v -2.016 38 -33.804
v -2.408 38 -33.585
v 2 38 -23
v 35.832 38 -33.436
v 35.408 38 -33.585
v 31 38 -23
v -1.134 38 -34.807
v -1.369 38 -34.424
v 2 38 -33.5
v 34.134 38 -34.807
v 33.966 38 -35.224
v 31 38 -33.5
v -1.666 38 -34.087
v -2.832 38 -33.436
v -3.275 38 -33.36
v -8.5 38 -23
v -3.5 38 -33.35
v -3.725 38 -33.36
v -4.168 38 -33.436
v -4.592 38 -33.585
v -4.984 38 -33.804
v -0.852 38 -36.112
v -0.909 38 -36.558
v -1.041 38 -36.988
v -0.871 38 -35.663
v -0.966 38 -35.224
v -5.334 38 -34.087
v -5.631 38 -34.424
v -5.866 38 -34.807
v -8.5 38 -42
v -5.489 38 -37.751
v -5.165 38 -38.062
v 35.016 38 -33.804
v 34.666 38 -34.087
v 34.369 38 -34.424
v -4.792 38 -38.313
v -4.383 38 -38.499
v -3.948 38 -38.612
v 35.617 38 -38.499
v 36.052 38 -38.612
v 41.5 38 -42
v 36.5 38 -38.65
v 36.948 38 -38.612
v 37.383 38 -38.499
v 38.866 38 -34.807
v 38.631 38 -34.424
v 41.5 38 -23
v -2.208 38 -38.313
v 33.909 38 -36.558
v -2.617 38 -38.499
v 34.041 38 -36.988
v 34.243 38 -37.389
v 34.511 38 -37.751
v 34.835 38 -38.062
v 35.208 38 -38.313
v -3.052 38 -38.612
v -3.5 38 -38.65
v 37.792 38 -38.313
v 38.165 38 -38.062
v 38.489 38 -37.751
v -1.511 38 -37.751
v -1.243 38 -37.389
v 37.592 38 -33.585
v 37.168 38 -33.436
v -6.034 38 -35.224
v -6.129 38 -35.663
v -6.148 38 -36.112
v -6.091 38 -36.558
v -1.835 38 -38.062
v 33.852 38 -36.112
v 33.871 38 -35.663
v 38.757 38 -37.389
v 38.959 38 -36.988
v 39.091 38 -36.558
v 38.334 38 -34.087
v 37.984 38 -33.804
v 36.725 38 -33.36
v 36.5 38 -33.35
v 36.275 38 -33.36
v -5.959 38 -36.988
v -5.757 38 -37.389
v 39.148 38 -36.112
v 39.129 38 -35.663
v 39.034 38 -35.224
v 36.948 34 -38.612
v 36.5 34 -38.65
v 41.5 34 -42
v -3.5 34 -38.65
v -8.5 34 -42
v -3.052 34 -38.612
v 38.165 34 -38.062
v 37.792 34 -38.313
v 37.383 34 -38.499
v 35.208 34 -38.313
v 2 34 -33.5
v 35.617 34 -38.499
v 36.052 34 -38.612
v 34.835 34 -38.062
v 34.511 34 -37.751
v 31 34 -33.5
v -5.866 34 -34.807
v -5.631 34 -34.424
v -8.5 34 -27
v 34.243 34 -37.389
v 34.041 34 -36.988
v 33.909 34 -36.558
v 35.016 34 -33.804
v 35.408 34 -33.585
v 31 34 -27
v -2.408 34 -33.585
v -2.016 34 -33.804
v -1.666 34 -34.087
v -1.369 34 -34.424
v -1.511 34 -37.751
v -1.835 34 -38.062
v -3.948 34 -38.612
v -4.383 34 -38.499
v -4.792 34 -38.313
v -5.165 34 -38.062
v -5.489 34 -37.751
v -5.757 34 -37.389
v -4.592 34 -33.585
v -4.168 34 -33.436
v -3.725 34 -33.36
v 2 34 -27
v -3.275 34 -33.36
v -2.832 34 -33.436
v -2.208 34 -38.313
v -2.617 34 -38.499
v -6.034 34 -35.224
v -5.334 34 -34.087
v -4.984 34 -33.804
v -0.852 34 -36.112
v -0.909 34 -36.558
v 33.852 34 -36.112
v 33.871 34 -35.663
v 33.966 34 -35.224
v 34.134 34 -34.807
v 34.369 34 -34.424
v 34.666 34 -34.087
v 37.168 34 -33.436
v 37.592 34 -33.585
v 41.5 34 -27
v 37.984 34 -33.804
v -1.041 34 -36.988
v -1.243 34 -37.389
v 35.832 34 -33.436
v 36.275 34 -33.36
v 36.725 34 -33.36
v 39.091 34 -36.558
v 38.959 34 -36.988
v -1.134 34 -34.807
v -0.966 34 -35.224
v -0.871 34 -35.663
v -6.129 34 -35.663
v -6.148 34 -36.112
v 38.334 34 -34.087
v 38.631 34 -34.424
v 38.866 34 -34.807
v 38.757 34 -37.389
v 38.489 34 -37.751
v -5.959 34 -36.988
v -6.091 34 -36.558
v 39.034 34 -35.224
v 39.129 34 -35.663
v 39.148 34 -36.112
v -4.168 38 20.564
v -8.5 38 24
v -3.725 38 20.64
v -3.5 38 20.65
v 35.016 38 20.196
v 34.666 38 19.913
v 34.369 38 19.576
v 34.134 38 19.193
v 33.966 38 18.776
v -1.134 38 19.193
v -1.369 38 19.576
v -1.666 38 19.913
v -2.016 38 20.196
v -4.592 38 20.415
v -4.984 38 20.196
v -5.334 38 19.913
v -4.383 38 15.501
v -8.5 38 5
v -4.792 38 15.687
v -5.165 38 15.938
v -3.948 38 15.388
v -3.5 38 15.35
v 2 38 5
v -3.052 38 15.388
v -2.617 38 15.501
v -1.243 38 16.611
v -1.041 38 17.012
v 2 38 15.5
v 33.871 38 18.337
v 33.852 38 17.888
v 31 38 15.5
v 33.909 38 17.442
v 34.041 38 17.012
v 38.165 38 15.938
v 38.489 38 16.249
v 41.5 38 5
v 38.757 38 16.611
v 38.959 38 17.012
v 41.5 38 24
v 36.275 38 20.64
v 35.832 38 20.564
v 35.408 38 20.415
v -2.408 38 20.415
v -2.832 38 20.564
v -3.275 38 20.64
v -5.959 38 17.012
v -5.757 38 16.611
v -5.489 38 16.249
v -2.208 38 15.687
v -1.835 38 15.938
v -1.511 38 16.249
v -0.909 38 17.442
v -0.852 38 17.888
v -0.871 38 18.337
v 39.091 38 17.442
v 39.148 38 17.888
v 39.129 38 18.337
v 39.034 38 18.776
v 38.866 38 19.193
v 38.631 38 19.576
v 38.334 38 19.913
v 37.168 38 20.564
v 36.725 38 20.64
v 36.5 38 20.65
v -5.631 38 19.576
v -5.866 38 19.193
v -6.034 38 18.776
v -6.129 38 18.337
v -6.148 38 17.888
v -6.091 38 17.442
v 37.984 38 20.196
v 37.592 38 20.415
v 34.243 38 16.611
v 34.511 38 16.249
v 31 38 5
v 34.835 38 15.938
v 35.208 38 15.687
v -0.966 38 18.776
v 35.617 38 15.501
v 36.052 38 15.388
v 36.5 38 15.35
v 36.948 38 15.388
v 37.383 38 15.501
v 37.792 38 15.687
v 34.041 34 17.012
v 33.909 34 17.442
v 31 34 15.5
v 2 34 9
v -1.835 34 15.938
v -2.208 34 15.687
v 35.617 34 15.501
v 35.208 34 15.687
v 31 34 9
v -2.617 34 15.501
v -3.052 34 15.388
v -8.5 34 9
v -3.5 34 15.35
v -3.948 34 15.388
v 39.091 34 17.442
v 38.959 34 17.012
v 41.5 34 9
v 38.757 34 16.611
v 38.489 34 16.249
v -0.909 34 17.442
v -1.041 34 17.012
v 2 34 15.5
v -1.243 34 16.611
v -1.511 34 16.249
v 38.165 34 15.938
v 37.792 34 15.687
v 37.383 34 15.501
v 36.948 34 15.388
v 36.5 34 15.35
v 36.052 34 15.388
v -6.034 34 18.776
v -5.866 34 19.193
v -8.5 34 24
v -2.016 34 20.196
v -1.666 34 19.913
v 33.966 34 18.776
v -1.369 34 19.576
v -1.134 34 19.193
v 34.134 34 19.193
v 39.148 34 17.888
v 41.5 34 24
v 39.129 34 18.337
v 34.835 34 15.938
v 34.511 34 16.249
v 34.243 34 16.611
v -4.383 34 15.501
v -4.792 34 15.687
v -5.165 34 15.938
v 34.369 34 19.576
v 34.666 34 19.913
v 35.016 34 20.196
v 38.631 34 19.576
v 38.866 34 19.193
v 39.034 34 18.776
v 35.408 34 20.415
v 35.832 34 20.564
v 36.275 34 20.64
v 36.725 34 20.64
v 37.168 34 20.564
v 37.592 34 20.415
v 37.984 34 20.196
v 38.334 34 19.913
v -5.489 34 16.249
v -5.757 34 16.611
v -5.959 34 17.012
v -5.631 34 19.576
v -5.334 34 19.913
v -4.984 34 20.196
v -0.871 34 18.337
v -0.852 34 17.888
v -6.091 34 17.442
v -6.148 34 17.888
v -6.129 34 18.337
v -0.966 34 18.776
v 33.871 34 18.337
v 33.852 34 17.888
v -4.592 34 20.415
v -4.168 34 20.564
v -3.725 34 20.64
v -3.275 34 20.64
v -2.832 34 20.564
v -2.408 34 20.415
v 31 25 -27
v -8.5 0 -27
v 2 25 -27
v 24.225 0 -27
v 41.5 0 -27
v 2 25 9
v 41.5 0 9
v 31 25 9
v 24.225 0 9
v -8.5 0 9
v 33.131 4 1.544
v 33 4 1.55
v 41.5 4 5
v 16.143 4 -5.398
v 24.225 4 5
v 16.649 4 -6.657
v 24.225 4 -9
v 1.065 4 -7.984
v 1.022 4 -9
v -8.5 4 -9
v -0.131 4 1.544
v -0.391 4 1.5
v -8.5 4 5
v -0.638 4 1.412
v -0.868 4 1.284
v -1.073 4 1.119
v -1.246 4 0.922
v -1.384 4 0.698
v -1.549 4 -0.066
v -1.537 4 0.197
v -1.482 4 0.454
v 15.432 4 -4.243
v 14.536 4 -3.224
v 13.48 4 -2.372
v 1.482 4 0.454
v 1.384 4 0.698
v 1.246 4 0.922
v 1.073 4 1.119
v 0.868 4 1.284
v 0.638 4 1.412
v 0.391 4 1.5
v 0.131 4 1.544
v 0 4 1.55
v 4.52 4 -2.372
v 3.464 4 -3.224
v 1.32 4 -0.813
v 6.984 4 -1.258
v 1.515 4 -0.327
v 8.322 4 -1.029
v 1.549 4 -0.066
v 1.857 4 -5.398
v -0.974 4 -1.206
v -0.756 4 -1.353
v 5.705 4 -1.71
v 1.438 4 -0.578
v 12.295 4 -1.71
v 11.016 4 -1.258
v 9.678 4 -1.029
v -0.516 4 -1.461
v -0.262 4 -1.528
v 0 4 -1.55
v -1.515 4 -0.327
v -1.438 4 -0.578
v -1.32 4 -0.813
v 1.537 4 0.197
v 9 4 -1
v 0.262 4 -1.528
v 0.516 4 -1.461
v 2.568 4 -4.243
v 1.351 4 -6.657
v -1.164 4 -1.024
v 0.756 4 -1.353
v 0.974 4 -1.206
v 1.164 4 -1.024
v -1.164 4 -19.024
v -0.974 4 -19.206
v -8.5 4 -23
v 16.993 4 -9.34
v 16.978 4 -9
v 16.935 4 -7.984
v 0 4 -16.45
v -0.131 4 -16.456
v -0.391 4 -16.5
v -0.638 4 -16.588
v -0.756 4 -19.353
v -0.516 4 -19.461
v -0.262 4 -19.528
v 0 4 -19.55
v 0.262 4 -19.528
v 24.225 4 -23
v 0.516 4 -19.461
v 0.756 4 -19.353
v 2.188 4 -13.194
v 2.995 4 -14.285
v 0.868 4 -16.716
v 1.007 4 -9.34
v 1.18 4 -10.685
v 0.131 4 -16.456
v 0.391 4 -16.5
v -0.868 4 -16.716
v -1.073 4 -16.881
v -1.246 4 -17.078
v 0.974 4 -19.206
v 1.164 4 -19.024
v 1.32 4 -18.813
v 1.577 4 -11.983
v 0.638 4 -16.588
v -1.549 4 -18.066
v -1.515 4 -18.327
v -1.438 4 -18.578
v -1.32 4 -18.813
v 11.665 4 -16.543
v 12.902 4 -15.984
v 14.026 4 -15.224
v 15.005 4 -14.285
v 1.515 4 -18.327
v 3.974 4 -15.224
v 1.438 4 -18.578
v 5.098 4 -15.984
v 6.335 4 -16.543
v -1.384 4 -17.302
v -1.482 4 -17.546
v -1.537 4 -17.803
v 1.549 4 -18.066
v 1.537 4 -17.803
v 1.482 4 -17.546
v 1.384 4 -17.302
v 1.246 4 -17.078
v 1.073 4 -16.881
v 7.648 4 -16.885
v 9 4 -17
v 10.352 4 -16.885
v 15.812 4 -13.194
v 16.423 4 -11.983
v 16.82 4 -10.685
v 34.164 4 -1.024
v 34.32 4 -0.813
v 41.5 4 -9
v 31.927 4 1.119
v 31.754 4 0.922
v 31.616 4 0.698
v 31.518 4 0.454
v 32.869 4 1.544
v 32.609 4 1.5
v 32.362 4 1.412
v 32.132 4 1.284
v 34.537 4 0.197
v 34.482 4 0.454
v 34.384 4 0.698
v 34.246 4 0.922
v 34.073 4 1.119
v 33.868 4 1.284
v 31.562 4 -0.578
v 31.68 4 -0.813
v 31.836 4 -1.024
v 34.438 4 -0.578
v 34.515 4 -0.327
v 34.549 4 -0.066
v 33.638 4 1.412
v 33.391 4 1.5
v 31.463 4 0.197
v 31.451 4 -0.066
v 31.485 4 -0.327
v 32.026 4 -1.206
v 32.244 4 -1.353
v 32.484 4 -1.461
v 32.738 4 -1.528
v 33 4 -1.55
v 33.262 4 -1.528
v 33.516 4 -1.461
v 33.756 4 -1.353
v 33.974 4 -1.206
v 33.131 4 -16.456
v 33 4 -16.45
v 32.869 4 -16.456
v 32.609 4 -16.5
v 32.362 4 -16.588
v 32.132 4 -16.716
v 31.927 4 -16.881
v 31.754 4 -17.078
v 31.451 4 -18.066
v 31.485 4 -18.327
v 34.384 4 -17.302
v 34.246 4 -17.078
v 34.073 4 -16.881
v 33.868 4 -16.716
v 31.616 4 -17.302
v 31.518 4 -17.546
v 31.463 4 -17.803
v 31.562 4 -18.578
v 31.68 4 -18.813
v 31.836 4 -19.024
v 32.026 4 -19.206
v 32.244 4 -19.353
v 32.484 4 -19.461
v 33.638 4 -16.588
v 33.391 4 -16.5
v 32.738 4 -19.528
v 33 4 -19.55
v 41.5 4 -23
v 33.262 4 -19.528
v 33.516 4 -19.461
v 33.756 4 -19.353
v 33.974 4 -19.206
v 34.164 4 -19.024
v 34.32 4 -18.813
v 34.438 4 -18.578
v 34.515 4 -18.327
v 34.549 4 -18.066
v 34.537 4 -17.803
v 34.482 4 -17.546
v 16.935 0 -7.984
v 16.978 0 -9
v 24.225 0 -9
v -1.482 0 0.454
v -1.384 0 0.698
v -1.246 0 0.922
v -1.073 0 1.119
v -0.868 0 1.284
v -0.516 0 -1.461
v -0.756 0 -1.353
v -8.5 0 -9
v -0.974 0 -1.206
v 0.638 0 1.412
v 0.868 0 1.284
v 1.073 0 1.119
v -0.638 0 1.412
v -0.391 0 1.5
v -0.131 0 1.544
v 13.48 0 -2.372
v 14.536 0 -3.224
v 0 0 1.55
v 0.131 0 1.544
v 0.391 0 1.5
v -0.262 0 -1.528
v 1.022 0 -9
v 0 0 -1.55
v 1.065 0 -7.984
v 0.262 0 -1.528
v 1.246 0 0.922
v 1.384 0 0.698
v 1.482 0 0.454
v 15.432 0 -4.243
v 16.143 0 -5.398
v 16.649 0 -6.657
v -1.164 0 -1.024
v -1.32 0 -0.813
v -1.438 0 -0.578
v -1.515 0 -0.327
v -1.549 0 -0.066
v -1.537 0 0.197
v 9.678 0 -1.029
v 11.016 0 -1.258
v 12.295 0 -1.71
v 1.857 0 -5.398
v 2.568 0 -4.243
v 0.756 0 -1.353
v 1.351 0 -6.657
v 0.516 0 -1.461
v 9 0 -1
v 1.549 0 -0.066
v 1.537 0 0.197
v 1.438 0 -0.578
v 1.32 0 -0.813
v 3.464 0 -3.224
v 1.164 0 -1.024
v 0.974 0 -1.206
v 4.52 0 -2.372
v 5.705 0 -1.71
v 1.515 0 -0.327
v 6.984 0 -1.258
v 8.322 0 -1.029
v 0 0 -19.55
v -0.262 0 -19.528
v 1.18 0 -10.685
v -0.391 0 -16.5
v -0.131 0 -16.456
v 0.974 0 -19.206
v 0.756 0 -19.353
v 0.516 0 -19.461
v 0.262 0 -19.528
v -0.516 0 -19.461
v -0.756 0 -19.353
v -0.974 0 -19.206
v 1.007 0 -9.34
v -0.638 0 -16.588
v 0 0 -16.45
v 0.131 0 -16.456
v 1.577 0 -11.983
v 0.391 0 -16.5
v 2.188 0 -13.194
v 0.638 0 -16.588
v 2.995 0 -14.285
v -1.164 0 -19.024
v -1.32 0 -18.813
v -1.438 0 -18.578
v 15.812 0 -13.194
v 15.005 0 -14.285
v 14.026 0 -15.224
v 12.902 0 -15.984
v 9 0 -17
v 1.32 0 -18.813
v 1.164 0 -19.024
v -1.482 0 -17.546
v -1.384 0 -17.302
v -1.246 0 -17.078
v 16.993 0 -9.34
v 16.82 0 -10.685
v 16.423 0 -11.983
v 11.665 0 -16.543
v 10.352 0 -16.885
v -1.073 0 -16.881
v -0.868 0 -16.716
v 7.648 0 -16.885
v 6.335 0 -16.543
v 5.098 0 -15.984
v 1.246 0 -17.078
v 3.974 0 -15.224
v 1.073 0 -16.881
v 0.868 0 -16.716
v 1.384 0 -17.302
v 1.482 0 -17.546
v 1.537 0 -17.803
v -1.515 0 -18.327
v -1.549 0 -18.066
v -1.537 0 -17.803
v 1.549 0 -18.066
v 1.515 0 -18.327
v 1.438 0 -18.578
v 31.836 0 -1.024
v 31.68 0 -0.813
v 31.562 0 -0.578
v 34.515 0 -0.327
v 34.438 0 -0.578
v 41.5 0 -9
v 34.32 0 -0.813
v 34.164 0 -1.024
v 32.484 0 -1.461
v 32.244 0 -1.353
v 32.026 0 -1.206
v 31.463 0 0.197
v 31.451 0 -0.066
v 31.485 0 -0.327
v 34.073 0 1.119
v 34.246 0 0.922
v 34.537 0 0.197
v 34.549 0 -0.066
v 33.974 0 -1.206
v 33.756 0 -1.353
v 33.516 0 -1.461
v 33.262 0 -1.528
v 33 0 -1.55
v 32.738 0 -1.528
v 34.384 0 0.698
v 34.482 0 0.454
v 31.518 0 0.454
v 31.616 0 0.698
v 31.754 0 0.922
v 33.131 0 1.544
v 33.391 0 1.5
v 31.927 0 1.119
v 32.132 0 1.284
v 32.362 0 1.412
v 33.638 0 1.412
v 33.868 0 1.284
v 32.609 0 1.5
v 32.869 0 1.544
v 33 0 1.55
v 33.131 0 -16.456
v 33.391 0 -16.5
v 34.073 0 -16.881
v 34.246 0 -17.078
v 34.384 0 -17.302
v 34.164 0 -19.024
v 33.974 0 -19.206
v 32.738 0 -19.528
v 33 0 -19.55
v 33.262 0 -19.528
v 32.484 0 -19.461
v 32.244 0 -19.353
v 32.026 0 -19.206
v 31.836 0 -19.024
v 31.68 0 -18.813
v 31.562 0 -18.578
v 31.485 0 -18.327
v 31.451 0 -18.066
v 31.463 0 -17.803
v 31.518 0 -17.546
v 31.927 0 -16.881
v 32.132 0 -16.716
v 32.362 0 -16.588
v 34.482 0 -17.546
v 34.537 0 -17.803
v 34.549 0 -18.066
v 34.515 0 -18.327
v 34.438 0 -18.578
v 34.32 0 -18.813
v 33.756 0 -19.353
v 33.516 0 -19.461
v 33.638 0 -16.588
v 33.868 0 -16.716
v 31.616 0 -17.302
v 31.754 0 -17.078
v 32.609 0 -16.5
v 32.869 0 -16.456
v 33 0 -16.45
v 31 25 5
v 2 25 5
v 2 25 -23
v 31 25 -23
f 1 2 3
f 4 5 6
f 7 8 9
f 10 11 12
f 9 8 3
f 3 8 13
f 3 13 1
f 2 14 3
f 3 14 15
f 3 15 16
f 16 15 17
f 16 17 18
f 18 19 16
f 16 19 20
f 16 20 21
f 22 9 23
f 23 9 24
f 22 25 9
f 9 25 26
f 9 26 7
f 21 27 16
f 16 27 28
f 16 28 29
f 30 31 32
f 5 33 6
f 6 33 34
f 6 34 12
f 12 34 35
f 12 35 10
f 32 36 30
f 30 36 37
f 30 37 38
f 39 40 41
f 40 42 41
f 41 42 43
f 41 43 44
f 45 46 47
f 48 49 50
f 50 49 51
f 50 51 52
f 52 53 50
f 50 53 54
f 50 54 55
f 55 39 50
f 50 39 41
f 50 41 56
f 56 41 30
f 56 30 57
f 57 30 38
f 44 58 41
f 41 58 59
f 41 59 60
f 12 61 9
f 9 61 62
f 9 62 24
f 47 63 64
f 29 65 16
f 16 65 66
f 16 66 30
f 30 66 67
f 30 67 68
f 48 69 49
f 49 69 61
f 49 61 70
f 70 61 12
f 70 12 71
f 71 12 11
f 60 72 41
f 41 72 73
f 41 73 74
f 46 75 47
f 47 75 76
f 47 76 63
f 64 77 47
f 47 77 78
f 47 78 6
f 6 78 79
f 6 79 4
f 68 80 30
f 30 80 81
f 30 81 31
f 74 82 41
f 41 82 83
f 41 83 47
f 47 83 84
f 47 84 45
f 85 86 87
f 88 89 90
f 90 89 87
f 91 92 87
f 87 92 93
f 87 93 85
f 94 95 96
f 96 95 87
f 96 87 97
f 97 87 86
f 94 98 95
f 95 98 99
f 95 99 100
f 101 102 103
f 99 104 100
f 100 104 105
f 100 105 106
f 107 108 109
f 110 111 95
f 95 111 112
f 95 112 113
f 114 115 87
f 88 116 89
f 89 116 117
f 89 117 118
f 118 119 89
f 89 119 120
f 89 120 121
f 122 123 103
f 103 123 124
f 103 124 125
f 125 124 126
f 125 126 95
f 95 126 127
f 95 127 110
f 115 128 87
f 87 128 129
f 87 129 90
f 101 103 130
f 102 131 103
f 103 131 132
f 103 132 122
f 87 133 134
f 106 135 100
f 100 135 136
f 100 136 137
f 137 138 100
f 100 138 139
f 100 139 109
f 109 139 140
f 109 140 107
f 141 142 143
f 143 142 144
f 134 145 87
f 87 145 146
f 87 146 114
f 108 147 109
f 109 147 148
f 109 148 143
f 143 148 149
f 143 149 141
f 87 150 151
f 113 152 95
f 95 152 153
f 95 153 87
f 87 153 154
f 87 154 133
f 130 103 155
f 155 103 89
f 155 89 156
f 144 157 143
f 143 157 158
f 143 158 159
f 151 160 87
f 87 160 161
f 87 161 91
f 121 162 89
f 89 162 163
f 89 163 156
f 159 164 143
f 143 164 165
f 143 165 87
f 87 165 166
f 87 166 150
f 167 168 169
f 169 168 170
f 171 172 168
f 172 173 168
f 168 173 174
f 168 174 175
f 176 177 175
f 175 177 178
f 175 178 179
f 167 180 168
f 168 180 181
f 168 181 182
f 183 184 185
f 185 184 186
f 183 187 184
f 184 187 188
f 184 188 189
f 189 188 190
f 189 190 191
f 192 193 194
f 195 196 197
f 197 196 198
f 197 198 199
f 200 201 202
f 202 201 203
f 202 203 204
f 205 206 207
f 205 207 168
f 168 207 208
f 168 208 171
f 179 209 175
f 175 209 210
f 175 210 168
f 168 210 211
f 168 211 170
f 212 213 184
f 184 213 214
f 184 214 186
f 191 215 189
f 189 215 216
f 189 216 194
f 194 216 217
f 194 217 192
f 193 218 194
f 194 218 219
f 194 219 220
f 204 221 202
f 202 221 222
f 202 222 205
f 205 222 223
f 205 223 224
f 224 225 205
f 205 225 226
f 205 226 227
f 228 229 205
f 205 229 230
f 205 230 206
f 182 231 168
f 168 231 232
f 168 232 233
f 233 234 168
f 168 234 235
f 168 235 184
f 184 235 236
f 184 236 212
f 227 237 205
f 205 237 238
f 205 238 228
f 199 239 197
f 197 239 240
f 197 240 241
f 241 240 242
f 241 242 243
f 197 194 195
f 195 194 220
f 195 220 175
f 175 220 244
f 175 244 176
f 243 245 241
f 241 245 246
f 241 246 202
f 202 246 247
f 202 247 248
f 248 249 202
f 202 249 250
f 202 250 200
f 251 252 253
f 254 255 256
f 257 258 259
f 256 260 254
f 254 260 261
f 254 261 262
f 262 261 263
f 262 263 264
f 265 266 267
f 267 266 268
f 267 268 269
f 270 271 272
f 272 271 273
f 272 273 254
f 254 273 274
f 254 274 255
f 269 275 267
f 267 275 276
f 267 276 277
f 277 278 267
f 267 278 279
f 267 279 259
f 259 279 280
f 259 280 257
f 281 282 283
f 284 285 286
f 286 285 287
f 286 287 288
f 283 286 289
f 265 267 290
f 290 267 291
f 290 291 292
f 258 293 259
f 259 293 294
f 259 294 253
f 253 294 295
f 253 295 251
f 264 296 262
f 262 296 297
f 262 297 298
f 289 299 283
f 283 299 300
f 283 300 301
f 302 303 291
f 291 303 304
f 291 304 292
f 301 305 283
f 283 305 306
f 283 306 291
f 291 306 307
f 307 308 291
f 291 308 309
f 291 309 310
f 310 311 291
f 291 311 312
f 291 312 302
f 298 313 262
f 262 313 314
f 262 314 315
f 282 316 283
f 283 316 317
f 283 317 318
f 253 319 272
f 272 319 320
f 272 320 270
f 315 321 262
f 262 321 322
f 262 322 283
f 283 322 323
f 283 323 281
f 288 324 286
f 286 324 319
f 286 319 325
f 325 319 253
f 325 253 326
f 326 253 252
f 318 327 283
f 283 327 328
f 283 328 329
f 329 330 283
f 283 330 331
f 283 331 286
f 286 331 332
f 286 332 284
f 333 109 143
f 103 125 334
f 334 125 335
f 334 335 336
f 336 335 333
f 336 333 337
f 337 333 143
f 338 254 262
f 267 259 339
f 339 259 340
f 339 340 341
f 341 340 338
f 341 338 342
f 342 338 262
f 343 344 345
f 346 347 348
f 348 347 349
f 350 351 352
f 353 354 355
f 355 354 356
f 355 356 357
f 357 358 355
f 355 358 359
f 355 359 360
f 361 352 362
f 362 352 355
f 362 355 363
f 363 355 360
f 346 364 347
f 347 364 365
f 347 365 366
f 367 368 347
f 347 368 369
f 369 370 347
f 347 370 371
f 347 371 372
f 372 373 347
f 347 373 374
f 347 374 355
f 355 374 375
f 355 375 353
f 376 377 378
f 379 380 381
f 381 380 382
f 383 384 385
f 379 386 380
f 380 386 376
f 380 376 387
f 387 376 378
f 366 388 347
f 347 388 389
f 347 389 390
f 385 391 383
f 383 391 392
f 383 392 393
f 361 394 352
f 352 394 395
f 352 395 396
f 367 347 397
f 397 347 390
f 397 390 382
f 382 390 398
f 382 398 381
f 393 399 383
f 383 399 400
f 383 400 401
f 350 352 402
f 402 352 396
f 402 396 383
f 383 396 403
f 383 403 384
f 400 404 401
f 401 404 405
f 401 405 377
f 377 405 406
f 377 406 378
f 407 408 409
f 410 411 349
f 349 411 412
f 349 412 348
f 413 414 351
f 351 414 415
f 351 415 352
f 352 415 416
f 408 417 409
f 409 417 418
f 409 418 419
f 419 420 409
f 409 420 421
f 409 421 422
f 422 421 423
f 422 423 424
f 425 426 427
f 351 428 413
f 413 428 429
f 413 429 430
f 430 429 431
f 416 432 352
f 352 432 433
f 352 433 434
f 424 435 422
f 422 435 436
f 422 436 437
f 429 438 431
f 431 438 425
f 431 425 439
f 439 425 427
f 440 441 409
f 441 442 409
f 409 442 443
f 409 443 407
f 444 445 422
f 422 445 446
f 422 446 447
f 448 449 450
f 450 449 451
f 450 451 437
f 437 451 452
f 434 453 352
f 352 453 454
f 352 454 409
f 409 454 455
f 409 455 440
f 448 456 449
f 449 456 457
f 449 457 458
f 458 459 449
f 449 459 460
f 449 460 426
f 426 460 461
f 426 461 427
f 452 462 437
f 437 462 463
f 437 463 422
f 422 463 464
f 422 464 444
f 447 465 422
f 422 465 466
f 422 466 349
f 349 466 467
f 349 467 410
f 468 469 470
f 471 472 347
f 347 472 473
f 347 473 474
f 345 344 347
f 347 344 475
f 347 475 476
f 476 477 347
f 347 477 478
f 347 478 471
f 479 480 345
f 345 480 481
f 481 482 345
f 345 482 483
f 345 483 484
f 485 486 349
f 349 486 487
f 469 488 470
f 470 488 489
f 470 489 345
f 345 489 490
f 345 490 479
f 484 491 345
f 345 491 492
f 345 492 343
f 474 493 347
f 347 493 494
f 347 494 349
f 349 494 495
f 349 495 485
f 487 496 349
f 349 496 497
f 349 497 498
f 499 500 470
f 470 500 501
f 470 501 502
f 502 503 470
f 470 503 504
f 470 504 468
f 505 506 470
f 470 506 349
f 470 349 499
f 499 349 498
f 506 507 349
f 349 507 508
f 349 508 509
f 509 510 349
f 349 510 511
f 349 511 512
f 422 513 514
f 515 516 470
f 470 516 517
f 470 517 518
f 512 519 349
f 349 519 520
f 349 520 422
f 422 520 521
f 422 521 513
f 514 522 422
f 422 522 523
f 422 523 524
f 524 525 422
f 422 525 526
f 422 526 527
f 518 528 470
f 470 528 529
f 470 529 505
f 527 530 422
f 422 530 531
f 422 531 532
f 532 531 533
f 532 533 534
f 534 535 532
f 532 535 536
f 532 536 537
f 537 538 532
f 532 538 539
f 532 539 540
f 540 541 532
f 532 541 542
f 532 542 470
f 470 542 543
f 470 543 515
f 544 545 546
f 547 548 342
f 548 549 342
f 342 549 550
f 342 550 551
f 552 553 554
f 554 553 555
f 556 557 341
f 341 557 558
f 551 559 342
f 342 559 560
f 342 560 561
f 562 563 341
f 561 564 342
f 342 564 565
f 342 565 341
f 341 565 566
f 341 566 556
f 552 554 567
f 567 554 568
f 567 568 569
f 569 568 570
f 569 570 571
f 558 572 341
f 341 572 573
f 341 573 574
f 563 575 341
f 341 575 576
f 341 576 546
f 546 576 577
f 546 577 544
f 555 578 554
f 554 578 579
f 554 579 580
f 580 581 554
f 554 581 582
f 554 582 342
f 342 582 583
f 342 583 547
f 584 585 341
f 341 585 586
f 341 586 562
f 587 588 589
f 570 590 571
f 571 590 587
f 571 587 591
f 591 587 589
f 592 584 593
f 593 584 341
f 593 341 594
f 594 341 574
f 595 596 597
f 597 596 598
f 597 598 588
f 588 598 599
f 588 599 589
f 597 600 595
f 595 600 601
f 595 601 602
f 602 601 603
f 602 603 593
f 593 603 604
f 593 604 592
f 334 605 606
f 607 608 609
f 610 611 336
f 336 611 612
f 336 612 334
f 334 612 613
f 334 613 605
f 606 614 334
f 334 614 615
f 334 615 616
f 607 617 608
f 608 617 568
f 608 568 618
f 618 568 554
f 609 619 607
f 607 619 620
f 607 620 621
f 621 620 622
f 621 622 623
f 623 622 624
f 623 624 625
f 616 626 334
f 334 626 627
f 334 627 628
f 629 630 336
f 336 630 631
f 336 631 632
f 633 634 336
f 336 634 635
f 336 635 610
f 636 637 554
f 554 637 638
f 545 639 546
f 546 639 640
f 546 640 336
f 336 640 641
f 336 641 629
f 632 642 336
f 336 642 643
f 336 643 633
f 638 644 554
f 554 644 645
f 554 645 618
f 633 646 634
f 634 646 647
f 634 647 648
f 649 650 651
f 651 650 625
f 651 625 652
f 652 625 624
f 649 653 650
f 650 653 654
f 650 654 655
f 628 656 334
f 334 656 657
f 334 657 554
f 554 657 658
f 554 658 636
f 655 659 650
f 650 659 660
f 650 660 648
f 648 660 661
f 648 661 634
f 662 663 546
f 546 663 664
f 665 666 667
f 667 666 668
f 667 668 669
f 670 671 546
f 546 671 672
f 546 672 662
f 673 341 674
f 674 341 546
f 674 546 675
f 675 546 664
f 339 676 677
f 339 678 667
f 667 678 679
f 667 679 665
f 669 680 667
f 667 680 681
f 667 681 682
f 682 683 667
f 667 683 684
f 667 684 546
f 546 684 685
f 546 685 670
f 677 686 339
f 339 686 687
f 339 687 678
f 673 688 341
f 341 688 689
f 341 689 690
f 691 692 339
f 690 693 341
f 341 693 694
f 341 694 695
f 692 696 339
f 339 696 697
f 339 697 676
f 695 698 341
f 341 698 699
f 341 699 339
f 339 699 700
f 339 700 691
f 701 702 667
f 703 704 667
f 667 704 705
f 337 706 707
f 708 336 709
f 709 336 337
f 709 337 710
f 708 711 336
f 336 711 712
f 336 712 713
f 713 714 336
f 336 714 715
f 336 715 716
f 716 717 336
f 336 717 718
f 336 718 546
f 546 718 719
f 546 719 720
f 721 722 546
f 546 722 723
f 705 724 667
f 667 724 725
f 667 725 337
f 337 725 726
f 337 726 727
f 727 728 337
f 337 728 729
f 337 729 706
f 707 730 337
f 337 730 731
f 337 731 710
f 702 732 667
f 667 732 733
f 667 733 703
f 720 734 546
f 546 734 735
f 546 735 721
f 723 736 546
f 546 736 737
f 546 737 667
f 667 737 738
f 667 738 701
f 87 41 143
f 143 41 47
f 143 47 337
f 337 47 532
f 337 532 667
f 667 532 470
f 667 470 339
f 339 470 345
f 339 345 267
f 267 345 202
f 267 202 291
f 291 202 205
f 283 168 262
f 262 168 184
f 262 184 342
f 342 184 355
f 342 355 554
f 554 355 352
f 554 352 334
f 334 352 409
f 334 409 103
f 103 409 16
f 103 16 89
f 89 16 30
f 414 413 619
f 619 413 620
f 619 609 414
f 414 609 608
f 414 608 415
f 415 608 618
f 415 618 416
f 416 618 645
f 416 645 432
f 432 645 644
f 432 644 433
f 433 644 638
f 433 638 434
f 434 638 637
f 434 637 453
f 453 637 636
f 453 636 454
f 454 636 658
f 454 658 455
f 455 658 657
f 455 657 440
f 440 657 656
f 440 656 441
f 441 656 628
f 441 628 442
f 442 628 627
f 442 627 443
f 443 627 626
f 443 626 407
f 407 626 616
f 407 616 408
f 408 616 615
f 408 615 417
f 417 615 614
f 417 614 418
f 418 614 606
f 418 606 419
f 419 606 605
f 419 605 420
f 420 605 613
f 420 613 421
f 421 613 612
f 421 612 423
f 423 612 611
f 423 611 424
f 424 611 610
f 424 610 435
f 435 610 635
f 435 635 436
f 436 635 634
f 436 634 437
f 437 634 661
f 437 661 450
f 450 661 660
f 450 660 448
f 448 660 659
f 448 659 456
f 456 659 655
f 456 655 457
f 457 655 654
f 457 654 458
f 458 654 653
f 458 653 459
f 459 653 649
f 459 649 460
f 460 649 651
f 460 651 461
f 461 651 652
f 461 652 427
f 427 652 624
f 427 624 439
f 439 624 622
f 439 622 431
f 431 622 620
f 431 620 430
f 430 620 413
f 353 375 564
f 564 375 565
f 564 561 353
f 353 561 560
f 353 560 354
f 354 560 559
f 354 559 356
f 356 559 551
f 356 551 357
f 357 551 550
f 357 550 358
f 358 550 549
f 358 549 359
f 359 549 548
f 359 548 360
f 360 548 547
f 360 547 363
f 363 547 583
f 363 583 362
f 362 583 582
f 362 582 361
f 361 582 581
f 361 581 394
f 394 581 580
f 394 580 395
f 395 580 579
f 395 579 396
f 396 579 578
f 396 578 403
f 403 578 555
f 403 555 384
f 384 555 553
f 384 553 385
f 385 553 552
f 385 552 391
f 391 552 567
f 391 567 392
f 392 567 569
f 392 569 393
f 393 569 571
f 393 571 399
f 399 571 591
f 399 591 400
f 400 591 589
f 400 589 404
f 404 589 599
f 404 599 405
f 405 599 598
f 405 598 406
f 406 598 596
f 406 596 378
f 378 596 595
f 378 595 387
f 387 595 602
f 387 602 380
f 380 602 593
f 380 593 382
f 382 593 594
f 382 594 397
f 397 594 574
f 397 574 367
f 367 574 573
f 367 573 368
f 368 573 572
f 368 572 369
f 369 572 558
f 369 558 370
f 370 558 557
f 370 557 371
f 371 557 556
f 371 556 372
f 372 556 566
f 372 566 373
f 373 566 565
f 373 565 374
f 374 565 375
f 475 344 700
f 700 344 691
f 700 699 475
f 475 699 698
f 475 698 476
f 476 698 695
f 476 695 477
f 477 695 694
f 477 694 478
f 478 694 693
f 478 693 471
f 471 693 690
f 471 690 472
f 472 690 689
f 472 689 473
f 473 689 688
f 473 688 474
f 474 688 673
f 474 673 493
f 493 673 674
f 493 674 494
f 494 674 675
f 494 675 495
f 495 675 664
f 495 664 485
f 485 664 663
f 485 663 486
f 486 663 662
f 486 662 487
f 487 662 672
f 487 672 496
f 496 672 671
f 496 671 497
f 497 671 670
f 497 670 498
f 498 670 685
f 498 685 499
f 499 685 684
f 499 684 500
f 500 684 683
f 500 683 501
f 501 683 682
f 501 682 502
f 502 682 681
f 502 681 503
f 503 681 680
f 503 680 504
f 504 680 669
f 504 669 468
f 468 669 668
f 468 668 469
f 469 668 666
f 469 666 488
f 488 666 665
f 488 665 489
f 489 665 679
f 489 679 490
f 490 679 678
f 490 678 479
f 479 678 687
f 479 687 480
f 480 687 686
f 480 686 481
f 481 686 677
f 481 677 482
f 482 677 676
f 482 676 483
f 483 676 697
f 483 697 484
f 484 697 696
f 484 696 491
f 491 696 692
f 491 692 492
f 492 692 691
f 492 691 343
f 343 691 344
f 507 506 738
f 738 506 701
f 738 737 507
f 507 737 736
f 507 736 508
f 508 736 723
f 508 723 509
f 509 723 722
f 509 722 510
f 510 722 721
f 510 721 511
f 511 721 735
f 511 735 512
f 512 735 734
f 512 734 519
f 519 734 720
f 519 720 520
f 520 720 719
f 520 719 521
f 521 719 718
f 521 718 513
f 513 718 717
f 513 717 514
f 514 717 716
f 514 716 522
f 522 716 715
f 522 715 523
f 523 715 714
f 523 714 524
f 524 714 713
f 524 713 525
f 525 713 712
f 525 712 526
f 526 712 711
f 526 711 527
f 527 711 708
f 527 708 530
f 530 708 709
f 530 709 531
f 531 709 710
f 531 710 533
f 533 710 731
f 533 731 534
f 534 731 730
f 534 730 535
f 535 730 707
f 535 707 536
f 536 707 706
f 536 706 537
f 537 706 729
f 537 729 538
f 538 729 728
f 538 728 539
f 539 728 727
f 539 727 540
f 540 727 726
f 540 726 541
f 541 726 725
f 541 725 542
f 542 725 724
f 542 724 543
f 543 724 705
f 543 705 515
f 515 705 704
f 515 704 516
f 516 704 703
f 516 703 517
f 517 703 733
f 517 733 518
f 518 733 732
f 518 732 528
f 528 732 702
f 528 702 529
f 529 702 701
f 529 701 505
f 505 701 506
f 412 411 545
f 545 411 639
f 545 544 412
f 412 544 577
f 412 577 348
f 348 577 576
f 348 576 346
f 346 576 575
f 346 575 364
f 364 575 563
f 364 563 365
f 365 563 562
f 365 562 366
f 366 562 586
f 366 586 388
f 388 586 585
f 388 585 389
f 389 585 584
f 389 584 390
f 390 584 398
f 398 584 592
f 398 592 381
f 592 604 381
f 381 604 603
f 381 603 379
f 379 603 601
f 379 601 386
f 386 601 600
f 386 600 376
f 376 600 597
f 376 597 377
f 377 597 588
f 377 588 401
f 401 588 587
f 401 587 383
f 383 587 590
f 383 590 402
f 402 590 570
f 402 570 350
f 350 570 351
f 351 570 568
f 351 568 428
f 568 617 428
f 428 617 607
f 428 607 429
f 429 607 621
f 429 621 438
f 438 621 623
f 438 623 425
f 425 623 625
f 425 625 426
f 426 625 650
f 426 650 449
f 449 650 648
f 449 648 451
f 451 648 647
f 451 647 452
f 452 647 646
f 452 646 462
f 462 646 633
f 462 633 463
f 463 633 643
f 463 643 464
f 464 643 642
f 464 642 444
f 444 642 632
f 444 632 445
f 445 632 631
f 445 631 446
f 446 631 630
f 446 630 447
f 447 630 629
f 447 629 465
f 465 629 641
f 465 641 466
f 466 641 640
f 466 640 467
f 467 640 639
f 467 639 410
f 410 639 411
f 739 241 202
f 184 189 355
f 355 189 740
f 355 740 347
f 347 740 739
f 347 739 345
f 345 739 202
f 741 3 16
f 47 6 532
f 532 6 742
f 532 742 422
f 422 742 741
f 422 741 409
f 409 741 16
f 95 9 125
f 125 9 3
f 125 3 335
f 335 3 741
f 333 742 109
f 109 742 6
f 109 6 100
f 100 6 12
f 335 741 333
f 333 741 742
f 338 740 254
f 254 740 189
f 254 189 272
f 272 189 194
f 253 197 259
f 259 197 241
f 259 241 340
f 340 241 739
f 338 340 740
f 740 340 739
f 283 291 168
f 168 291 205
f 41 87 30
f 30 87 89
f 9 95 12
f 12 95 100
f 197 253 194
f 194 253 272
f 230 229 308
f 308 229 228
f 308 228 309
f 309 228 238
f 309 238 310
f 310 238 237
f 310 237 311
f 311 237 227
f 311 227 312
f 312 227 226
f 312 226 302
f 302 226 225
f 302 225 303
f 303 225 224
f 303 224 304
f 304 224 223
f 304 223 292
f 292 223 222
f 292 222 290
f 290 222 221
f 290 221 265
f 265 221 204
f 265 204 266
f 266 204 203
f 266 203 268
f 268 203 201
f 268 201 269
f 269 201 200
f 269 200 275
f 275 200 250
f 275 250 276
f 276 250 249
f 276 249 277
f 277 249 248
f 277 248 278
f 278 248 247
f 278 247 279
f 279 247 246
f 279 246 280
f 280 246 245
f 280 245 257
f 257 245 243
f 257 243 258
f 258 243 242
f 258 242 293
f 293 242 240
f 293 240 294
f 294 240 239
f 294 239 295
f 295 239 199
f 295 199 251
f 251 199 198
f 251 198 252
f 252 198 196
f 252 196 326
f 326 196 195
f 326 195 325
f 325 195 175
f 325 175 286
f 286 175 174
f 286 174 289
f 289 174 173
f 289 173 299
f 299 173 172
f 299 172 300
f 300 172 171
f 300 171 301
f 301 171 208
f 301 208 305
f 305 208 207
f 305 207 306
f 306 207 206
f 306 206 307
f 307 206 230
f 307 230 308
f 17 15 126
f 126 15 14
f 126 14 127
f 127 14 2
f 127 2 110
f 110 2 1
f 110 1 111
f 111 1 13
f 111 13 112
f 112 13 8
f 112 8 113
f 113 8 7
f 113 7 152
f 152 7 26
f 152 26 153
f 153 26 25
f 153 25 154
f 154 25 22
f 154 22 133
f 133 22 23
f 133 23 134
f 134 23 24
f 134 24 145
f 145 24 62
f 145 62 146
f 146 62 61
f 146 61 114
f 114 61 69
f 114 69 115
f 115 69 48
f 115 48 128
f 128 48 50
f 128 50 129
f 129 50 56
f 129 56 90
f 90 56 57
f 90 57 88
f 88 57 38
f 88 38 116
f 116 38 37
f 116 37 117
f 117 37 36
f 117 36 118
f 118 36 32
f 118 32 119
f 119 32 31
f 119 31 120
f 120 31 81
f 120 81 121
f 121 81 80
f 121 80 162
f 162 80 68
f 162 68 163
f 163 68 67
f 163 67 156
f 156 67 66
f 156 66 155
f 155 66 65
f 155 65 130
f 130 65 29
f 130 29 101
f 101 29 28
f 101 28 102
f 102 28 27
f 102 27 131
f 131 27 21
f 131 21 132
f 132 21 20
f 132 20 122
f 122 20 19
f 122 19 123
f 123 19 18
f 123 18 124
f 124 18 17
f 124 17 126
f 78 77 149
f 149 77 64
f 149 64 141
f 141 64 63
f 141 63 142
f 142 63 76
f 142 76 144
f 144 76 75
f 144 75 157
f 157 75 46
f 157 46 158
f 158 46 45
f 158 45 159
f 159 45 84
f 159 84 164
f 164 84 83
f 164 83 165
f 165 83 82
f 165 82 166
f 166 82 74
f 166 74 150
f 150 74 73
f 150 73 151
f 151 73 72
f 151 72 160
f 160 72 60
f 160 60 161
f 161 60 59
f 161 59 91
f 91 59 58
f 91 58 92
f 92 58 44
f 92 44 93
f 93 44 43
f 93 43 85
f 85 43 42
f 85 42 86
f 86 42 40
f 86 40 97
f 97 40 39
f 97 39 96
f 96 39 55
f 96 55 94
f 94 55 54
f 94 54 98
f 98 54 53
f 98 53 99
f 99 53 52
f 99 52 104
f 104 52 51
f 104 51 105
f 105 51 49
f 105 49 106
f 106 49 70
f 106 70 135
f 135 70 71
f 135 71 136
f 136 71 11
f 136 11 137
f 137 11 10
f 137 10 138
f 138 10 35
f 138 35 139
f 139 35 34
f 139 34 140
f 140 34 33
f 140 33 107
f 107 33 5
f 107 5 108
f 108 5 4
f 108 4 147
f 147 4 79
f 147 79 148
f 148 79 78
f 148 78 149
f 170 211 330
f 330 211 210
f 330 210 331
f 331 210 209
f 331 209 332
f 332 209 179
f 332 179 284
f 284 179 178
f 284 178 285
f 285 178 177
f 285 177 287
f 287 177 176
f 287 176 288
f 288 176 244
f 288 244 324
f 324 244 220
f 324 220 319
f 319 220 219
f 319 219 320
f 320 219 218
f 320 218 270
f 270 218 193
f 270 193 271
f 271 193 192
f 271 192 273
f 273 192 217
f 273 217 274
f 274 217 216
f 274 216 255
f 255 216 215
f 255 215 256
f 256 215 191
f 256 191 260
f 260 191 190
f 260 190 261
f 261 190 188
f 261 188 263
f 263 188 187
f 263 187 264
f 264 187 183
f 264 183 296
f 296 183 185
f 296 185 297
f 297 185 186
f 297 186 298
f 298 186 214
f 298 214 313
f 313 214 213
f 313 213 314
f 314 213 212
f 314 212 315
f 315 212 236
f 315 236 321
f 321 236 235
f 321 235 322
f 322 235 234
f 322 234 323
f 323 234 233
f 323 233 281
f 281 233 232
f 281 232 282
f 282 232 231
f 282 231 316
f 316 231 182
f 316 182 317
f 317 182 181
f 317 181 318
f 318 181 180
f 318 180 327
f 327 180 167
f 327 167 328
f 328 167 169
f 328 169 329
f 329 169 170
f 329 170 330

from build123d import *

# Parameters (mm, degrees)
SKETCH1_W           = 50
SKETCH1_H           = 36
SKETCH1_R           = 1.55
SKETCH1_R_2         = 8
BOSS_EXTRUDE1_DEPTH = 4
SKETCH2_W           = 50
SKETCH2_H           = 4
BOSS_EXTRUDE3_DEPTH = 34
SKETCH3_W           = 29
SKETCH3_H           = 13
CUT_EXTRUDE1_DEPTH  = 67.80007485
BOSS_EXTRUDE4_DEPTH = 15
SKETCH7_W           = 50
SKETCH7_H           = 4
BOSS_EXTRUDE5_DEPTH = 15
SKETCH9_W           = 29
SKETCH9_H           = 6.5
CUT_EXTRUDE2_DEPTH  = 71.215738976
SKETCH10_R          = 2.65
CUT_EXTRUDE3_DEPTH  = 69.134059031


with BuildPart() as part:
    # Sketch1 → Boss-Extrude1 (new body)
    with BuildSketch(Plane(origin=(0, 0, 0), x_dir=(1, 0, 0), z_dir=(0, 1, 0))):
        with Locations((16.5, 9)):
            Rectangle(SKETCH1_W, SKETCH1_H)
        with Locations(Location((0, 18, 0), (0, 0, 270))):
            Circle(SKETCH1_R, mode=Mode.SUBTRACT)
        with Locations(Location((0, 0, 0), (0, 0, 270))):
            Circle(SKETCH1_R, mode=Mode.SUBTRACT)
        with Locations(Location((33, 0, 0), (0, 0, 270))):
            Circle(SKETCH1_R, mode=Mode.SUBTRACT)
        with Locations(Location((33, 18, 0), (0, 0, 270))):
            Circle(SKETCH1_R, mode=Mode.SUBTRACT)
        with Locations(Location((9, 9, 0), (0, 0, 270))):
            Circle(SKETCH1_R_2, mode=Mode.SUBTRACT)
    extrude(amount=BOSS_EXTRUDE1_DEPTH)

    # Sketch2 → Boss-Extrude3 (add)
    with BuildSketch(Plane(origin=(0, 4, 0), x_dir=(1, 0, 0), z_dir=(0, 1, 0))):
        with Locations((16.5, -7)):
            Rectangle(SKETCH2_W, SKETCH2_H)
        with Locations((16.5, 25)):
            Rectangle(SKETCH2_W, SKETCH2_H)
    extrude(amount=BOSS_EXTRUDE3_DEPTH)

    # Sketch3 → Cut-Extrude1 (cut, through all)
    with BuildSketch(Plane.XY.offset(9)):
        with Locations((16.5, 31.5)):
            Rectangle(SKETCH3_W, SKETCH3_H)
    extrude(amount=-CUT_EXTRUDE1_DEPTH, mode=Mode.SUBTRACT)

    # Sketch6 → Boss-Extrude4 (add)
    with BuildSketch(Plane.XY.offset(9)):
        Polygon((31, 38), (41.5, 38), (41.5, 34), (2, 34), (-8.5, 34), (-8.5, 38), align=None)
    extrude(amount=BOSS_EXTRUDE4_DEPTH)

    # Sketch7 → Boss-Extrude5 (add)
    with BuildSketch(Plane(origin=(0, 0, -27), x_dir=(-1, 0, 0), z_dir=(0, 0, -1))):
        with Locations((-16.5, 36)):
            Rectangle(SKETCH7_W, SKETCH7_H)
    extrude(amount=BOSS_EXTRUDE5_DEPTH)

    # Sketch9 → Cut-Extrude2 (cut, through all)
    with BuildSketch(Plane(origin=(0, 38, 0), x_dir=(1, 0, 0), z_dir=(0, 1, 0))):
        with Locations((16.5, 30.25)):
            Rectangle(SKETCH9_W, SKETCH9_H)
        with Locations((16.5, -12.25)):
            Rectangle(SKETCH9_W, SKETCH9_H)
    extrude(amount=-CUT_EXTRUDE2_DEPTH, mode=Mode.SUBTRACT)

    # Sketch10 → Cut-Extrude3 (cut, through all)
    with BuildSketch(Plane.XZ.offset(-34)):
        with Locations(Location((36.5, -36, 0), (0, 0, 270))):
            Circle(SKETCH10_R)
        with Locations(Location((-3.5, -36, 0), (0, 0, 270))):
            Circle(SKETCH10_R)
        with Locations(Location((-3.5, 18, 0), (0, 0, 270))):
            Circle(SKETCH10_R)
        with Locations(Location((36.5, 18, 0), (0, 0, 270))):
            Circle(SKETCH10_R)
    extrude(amount=-CUT_EXTRUDE3_DEPTH, mode=Mode.SUBTRACT)


solid = part.part
